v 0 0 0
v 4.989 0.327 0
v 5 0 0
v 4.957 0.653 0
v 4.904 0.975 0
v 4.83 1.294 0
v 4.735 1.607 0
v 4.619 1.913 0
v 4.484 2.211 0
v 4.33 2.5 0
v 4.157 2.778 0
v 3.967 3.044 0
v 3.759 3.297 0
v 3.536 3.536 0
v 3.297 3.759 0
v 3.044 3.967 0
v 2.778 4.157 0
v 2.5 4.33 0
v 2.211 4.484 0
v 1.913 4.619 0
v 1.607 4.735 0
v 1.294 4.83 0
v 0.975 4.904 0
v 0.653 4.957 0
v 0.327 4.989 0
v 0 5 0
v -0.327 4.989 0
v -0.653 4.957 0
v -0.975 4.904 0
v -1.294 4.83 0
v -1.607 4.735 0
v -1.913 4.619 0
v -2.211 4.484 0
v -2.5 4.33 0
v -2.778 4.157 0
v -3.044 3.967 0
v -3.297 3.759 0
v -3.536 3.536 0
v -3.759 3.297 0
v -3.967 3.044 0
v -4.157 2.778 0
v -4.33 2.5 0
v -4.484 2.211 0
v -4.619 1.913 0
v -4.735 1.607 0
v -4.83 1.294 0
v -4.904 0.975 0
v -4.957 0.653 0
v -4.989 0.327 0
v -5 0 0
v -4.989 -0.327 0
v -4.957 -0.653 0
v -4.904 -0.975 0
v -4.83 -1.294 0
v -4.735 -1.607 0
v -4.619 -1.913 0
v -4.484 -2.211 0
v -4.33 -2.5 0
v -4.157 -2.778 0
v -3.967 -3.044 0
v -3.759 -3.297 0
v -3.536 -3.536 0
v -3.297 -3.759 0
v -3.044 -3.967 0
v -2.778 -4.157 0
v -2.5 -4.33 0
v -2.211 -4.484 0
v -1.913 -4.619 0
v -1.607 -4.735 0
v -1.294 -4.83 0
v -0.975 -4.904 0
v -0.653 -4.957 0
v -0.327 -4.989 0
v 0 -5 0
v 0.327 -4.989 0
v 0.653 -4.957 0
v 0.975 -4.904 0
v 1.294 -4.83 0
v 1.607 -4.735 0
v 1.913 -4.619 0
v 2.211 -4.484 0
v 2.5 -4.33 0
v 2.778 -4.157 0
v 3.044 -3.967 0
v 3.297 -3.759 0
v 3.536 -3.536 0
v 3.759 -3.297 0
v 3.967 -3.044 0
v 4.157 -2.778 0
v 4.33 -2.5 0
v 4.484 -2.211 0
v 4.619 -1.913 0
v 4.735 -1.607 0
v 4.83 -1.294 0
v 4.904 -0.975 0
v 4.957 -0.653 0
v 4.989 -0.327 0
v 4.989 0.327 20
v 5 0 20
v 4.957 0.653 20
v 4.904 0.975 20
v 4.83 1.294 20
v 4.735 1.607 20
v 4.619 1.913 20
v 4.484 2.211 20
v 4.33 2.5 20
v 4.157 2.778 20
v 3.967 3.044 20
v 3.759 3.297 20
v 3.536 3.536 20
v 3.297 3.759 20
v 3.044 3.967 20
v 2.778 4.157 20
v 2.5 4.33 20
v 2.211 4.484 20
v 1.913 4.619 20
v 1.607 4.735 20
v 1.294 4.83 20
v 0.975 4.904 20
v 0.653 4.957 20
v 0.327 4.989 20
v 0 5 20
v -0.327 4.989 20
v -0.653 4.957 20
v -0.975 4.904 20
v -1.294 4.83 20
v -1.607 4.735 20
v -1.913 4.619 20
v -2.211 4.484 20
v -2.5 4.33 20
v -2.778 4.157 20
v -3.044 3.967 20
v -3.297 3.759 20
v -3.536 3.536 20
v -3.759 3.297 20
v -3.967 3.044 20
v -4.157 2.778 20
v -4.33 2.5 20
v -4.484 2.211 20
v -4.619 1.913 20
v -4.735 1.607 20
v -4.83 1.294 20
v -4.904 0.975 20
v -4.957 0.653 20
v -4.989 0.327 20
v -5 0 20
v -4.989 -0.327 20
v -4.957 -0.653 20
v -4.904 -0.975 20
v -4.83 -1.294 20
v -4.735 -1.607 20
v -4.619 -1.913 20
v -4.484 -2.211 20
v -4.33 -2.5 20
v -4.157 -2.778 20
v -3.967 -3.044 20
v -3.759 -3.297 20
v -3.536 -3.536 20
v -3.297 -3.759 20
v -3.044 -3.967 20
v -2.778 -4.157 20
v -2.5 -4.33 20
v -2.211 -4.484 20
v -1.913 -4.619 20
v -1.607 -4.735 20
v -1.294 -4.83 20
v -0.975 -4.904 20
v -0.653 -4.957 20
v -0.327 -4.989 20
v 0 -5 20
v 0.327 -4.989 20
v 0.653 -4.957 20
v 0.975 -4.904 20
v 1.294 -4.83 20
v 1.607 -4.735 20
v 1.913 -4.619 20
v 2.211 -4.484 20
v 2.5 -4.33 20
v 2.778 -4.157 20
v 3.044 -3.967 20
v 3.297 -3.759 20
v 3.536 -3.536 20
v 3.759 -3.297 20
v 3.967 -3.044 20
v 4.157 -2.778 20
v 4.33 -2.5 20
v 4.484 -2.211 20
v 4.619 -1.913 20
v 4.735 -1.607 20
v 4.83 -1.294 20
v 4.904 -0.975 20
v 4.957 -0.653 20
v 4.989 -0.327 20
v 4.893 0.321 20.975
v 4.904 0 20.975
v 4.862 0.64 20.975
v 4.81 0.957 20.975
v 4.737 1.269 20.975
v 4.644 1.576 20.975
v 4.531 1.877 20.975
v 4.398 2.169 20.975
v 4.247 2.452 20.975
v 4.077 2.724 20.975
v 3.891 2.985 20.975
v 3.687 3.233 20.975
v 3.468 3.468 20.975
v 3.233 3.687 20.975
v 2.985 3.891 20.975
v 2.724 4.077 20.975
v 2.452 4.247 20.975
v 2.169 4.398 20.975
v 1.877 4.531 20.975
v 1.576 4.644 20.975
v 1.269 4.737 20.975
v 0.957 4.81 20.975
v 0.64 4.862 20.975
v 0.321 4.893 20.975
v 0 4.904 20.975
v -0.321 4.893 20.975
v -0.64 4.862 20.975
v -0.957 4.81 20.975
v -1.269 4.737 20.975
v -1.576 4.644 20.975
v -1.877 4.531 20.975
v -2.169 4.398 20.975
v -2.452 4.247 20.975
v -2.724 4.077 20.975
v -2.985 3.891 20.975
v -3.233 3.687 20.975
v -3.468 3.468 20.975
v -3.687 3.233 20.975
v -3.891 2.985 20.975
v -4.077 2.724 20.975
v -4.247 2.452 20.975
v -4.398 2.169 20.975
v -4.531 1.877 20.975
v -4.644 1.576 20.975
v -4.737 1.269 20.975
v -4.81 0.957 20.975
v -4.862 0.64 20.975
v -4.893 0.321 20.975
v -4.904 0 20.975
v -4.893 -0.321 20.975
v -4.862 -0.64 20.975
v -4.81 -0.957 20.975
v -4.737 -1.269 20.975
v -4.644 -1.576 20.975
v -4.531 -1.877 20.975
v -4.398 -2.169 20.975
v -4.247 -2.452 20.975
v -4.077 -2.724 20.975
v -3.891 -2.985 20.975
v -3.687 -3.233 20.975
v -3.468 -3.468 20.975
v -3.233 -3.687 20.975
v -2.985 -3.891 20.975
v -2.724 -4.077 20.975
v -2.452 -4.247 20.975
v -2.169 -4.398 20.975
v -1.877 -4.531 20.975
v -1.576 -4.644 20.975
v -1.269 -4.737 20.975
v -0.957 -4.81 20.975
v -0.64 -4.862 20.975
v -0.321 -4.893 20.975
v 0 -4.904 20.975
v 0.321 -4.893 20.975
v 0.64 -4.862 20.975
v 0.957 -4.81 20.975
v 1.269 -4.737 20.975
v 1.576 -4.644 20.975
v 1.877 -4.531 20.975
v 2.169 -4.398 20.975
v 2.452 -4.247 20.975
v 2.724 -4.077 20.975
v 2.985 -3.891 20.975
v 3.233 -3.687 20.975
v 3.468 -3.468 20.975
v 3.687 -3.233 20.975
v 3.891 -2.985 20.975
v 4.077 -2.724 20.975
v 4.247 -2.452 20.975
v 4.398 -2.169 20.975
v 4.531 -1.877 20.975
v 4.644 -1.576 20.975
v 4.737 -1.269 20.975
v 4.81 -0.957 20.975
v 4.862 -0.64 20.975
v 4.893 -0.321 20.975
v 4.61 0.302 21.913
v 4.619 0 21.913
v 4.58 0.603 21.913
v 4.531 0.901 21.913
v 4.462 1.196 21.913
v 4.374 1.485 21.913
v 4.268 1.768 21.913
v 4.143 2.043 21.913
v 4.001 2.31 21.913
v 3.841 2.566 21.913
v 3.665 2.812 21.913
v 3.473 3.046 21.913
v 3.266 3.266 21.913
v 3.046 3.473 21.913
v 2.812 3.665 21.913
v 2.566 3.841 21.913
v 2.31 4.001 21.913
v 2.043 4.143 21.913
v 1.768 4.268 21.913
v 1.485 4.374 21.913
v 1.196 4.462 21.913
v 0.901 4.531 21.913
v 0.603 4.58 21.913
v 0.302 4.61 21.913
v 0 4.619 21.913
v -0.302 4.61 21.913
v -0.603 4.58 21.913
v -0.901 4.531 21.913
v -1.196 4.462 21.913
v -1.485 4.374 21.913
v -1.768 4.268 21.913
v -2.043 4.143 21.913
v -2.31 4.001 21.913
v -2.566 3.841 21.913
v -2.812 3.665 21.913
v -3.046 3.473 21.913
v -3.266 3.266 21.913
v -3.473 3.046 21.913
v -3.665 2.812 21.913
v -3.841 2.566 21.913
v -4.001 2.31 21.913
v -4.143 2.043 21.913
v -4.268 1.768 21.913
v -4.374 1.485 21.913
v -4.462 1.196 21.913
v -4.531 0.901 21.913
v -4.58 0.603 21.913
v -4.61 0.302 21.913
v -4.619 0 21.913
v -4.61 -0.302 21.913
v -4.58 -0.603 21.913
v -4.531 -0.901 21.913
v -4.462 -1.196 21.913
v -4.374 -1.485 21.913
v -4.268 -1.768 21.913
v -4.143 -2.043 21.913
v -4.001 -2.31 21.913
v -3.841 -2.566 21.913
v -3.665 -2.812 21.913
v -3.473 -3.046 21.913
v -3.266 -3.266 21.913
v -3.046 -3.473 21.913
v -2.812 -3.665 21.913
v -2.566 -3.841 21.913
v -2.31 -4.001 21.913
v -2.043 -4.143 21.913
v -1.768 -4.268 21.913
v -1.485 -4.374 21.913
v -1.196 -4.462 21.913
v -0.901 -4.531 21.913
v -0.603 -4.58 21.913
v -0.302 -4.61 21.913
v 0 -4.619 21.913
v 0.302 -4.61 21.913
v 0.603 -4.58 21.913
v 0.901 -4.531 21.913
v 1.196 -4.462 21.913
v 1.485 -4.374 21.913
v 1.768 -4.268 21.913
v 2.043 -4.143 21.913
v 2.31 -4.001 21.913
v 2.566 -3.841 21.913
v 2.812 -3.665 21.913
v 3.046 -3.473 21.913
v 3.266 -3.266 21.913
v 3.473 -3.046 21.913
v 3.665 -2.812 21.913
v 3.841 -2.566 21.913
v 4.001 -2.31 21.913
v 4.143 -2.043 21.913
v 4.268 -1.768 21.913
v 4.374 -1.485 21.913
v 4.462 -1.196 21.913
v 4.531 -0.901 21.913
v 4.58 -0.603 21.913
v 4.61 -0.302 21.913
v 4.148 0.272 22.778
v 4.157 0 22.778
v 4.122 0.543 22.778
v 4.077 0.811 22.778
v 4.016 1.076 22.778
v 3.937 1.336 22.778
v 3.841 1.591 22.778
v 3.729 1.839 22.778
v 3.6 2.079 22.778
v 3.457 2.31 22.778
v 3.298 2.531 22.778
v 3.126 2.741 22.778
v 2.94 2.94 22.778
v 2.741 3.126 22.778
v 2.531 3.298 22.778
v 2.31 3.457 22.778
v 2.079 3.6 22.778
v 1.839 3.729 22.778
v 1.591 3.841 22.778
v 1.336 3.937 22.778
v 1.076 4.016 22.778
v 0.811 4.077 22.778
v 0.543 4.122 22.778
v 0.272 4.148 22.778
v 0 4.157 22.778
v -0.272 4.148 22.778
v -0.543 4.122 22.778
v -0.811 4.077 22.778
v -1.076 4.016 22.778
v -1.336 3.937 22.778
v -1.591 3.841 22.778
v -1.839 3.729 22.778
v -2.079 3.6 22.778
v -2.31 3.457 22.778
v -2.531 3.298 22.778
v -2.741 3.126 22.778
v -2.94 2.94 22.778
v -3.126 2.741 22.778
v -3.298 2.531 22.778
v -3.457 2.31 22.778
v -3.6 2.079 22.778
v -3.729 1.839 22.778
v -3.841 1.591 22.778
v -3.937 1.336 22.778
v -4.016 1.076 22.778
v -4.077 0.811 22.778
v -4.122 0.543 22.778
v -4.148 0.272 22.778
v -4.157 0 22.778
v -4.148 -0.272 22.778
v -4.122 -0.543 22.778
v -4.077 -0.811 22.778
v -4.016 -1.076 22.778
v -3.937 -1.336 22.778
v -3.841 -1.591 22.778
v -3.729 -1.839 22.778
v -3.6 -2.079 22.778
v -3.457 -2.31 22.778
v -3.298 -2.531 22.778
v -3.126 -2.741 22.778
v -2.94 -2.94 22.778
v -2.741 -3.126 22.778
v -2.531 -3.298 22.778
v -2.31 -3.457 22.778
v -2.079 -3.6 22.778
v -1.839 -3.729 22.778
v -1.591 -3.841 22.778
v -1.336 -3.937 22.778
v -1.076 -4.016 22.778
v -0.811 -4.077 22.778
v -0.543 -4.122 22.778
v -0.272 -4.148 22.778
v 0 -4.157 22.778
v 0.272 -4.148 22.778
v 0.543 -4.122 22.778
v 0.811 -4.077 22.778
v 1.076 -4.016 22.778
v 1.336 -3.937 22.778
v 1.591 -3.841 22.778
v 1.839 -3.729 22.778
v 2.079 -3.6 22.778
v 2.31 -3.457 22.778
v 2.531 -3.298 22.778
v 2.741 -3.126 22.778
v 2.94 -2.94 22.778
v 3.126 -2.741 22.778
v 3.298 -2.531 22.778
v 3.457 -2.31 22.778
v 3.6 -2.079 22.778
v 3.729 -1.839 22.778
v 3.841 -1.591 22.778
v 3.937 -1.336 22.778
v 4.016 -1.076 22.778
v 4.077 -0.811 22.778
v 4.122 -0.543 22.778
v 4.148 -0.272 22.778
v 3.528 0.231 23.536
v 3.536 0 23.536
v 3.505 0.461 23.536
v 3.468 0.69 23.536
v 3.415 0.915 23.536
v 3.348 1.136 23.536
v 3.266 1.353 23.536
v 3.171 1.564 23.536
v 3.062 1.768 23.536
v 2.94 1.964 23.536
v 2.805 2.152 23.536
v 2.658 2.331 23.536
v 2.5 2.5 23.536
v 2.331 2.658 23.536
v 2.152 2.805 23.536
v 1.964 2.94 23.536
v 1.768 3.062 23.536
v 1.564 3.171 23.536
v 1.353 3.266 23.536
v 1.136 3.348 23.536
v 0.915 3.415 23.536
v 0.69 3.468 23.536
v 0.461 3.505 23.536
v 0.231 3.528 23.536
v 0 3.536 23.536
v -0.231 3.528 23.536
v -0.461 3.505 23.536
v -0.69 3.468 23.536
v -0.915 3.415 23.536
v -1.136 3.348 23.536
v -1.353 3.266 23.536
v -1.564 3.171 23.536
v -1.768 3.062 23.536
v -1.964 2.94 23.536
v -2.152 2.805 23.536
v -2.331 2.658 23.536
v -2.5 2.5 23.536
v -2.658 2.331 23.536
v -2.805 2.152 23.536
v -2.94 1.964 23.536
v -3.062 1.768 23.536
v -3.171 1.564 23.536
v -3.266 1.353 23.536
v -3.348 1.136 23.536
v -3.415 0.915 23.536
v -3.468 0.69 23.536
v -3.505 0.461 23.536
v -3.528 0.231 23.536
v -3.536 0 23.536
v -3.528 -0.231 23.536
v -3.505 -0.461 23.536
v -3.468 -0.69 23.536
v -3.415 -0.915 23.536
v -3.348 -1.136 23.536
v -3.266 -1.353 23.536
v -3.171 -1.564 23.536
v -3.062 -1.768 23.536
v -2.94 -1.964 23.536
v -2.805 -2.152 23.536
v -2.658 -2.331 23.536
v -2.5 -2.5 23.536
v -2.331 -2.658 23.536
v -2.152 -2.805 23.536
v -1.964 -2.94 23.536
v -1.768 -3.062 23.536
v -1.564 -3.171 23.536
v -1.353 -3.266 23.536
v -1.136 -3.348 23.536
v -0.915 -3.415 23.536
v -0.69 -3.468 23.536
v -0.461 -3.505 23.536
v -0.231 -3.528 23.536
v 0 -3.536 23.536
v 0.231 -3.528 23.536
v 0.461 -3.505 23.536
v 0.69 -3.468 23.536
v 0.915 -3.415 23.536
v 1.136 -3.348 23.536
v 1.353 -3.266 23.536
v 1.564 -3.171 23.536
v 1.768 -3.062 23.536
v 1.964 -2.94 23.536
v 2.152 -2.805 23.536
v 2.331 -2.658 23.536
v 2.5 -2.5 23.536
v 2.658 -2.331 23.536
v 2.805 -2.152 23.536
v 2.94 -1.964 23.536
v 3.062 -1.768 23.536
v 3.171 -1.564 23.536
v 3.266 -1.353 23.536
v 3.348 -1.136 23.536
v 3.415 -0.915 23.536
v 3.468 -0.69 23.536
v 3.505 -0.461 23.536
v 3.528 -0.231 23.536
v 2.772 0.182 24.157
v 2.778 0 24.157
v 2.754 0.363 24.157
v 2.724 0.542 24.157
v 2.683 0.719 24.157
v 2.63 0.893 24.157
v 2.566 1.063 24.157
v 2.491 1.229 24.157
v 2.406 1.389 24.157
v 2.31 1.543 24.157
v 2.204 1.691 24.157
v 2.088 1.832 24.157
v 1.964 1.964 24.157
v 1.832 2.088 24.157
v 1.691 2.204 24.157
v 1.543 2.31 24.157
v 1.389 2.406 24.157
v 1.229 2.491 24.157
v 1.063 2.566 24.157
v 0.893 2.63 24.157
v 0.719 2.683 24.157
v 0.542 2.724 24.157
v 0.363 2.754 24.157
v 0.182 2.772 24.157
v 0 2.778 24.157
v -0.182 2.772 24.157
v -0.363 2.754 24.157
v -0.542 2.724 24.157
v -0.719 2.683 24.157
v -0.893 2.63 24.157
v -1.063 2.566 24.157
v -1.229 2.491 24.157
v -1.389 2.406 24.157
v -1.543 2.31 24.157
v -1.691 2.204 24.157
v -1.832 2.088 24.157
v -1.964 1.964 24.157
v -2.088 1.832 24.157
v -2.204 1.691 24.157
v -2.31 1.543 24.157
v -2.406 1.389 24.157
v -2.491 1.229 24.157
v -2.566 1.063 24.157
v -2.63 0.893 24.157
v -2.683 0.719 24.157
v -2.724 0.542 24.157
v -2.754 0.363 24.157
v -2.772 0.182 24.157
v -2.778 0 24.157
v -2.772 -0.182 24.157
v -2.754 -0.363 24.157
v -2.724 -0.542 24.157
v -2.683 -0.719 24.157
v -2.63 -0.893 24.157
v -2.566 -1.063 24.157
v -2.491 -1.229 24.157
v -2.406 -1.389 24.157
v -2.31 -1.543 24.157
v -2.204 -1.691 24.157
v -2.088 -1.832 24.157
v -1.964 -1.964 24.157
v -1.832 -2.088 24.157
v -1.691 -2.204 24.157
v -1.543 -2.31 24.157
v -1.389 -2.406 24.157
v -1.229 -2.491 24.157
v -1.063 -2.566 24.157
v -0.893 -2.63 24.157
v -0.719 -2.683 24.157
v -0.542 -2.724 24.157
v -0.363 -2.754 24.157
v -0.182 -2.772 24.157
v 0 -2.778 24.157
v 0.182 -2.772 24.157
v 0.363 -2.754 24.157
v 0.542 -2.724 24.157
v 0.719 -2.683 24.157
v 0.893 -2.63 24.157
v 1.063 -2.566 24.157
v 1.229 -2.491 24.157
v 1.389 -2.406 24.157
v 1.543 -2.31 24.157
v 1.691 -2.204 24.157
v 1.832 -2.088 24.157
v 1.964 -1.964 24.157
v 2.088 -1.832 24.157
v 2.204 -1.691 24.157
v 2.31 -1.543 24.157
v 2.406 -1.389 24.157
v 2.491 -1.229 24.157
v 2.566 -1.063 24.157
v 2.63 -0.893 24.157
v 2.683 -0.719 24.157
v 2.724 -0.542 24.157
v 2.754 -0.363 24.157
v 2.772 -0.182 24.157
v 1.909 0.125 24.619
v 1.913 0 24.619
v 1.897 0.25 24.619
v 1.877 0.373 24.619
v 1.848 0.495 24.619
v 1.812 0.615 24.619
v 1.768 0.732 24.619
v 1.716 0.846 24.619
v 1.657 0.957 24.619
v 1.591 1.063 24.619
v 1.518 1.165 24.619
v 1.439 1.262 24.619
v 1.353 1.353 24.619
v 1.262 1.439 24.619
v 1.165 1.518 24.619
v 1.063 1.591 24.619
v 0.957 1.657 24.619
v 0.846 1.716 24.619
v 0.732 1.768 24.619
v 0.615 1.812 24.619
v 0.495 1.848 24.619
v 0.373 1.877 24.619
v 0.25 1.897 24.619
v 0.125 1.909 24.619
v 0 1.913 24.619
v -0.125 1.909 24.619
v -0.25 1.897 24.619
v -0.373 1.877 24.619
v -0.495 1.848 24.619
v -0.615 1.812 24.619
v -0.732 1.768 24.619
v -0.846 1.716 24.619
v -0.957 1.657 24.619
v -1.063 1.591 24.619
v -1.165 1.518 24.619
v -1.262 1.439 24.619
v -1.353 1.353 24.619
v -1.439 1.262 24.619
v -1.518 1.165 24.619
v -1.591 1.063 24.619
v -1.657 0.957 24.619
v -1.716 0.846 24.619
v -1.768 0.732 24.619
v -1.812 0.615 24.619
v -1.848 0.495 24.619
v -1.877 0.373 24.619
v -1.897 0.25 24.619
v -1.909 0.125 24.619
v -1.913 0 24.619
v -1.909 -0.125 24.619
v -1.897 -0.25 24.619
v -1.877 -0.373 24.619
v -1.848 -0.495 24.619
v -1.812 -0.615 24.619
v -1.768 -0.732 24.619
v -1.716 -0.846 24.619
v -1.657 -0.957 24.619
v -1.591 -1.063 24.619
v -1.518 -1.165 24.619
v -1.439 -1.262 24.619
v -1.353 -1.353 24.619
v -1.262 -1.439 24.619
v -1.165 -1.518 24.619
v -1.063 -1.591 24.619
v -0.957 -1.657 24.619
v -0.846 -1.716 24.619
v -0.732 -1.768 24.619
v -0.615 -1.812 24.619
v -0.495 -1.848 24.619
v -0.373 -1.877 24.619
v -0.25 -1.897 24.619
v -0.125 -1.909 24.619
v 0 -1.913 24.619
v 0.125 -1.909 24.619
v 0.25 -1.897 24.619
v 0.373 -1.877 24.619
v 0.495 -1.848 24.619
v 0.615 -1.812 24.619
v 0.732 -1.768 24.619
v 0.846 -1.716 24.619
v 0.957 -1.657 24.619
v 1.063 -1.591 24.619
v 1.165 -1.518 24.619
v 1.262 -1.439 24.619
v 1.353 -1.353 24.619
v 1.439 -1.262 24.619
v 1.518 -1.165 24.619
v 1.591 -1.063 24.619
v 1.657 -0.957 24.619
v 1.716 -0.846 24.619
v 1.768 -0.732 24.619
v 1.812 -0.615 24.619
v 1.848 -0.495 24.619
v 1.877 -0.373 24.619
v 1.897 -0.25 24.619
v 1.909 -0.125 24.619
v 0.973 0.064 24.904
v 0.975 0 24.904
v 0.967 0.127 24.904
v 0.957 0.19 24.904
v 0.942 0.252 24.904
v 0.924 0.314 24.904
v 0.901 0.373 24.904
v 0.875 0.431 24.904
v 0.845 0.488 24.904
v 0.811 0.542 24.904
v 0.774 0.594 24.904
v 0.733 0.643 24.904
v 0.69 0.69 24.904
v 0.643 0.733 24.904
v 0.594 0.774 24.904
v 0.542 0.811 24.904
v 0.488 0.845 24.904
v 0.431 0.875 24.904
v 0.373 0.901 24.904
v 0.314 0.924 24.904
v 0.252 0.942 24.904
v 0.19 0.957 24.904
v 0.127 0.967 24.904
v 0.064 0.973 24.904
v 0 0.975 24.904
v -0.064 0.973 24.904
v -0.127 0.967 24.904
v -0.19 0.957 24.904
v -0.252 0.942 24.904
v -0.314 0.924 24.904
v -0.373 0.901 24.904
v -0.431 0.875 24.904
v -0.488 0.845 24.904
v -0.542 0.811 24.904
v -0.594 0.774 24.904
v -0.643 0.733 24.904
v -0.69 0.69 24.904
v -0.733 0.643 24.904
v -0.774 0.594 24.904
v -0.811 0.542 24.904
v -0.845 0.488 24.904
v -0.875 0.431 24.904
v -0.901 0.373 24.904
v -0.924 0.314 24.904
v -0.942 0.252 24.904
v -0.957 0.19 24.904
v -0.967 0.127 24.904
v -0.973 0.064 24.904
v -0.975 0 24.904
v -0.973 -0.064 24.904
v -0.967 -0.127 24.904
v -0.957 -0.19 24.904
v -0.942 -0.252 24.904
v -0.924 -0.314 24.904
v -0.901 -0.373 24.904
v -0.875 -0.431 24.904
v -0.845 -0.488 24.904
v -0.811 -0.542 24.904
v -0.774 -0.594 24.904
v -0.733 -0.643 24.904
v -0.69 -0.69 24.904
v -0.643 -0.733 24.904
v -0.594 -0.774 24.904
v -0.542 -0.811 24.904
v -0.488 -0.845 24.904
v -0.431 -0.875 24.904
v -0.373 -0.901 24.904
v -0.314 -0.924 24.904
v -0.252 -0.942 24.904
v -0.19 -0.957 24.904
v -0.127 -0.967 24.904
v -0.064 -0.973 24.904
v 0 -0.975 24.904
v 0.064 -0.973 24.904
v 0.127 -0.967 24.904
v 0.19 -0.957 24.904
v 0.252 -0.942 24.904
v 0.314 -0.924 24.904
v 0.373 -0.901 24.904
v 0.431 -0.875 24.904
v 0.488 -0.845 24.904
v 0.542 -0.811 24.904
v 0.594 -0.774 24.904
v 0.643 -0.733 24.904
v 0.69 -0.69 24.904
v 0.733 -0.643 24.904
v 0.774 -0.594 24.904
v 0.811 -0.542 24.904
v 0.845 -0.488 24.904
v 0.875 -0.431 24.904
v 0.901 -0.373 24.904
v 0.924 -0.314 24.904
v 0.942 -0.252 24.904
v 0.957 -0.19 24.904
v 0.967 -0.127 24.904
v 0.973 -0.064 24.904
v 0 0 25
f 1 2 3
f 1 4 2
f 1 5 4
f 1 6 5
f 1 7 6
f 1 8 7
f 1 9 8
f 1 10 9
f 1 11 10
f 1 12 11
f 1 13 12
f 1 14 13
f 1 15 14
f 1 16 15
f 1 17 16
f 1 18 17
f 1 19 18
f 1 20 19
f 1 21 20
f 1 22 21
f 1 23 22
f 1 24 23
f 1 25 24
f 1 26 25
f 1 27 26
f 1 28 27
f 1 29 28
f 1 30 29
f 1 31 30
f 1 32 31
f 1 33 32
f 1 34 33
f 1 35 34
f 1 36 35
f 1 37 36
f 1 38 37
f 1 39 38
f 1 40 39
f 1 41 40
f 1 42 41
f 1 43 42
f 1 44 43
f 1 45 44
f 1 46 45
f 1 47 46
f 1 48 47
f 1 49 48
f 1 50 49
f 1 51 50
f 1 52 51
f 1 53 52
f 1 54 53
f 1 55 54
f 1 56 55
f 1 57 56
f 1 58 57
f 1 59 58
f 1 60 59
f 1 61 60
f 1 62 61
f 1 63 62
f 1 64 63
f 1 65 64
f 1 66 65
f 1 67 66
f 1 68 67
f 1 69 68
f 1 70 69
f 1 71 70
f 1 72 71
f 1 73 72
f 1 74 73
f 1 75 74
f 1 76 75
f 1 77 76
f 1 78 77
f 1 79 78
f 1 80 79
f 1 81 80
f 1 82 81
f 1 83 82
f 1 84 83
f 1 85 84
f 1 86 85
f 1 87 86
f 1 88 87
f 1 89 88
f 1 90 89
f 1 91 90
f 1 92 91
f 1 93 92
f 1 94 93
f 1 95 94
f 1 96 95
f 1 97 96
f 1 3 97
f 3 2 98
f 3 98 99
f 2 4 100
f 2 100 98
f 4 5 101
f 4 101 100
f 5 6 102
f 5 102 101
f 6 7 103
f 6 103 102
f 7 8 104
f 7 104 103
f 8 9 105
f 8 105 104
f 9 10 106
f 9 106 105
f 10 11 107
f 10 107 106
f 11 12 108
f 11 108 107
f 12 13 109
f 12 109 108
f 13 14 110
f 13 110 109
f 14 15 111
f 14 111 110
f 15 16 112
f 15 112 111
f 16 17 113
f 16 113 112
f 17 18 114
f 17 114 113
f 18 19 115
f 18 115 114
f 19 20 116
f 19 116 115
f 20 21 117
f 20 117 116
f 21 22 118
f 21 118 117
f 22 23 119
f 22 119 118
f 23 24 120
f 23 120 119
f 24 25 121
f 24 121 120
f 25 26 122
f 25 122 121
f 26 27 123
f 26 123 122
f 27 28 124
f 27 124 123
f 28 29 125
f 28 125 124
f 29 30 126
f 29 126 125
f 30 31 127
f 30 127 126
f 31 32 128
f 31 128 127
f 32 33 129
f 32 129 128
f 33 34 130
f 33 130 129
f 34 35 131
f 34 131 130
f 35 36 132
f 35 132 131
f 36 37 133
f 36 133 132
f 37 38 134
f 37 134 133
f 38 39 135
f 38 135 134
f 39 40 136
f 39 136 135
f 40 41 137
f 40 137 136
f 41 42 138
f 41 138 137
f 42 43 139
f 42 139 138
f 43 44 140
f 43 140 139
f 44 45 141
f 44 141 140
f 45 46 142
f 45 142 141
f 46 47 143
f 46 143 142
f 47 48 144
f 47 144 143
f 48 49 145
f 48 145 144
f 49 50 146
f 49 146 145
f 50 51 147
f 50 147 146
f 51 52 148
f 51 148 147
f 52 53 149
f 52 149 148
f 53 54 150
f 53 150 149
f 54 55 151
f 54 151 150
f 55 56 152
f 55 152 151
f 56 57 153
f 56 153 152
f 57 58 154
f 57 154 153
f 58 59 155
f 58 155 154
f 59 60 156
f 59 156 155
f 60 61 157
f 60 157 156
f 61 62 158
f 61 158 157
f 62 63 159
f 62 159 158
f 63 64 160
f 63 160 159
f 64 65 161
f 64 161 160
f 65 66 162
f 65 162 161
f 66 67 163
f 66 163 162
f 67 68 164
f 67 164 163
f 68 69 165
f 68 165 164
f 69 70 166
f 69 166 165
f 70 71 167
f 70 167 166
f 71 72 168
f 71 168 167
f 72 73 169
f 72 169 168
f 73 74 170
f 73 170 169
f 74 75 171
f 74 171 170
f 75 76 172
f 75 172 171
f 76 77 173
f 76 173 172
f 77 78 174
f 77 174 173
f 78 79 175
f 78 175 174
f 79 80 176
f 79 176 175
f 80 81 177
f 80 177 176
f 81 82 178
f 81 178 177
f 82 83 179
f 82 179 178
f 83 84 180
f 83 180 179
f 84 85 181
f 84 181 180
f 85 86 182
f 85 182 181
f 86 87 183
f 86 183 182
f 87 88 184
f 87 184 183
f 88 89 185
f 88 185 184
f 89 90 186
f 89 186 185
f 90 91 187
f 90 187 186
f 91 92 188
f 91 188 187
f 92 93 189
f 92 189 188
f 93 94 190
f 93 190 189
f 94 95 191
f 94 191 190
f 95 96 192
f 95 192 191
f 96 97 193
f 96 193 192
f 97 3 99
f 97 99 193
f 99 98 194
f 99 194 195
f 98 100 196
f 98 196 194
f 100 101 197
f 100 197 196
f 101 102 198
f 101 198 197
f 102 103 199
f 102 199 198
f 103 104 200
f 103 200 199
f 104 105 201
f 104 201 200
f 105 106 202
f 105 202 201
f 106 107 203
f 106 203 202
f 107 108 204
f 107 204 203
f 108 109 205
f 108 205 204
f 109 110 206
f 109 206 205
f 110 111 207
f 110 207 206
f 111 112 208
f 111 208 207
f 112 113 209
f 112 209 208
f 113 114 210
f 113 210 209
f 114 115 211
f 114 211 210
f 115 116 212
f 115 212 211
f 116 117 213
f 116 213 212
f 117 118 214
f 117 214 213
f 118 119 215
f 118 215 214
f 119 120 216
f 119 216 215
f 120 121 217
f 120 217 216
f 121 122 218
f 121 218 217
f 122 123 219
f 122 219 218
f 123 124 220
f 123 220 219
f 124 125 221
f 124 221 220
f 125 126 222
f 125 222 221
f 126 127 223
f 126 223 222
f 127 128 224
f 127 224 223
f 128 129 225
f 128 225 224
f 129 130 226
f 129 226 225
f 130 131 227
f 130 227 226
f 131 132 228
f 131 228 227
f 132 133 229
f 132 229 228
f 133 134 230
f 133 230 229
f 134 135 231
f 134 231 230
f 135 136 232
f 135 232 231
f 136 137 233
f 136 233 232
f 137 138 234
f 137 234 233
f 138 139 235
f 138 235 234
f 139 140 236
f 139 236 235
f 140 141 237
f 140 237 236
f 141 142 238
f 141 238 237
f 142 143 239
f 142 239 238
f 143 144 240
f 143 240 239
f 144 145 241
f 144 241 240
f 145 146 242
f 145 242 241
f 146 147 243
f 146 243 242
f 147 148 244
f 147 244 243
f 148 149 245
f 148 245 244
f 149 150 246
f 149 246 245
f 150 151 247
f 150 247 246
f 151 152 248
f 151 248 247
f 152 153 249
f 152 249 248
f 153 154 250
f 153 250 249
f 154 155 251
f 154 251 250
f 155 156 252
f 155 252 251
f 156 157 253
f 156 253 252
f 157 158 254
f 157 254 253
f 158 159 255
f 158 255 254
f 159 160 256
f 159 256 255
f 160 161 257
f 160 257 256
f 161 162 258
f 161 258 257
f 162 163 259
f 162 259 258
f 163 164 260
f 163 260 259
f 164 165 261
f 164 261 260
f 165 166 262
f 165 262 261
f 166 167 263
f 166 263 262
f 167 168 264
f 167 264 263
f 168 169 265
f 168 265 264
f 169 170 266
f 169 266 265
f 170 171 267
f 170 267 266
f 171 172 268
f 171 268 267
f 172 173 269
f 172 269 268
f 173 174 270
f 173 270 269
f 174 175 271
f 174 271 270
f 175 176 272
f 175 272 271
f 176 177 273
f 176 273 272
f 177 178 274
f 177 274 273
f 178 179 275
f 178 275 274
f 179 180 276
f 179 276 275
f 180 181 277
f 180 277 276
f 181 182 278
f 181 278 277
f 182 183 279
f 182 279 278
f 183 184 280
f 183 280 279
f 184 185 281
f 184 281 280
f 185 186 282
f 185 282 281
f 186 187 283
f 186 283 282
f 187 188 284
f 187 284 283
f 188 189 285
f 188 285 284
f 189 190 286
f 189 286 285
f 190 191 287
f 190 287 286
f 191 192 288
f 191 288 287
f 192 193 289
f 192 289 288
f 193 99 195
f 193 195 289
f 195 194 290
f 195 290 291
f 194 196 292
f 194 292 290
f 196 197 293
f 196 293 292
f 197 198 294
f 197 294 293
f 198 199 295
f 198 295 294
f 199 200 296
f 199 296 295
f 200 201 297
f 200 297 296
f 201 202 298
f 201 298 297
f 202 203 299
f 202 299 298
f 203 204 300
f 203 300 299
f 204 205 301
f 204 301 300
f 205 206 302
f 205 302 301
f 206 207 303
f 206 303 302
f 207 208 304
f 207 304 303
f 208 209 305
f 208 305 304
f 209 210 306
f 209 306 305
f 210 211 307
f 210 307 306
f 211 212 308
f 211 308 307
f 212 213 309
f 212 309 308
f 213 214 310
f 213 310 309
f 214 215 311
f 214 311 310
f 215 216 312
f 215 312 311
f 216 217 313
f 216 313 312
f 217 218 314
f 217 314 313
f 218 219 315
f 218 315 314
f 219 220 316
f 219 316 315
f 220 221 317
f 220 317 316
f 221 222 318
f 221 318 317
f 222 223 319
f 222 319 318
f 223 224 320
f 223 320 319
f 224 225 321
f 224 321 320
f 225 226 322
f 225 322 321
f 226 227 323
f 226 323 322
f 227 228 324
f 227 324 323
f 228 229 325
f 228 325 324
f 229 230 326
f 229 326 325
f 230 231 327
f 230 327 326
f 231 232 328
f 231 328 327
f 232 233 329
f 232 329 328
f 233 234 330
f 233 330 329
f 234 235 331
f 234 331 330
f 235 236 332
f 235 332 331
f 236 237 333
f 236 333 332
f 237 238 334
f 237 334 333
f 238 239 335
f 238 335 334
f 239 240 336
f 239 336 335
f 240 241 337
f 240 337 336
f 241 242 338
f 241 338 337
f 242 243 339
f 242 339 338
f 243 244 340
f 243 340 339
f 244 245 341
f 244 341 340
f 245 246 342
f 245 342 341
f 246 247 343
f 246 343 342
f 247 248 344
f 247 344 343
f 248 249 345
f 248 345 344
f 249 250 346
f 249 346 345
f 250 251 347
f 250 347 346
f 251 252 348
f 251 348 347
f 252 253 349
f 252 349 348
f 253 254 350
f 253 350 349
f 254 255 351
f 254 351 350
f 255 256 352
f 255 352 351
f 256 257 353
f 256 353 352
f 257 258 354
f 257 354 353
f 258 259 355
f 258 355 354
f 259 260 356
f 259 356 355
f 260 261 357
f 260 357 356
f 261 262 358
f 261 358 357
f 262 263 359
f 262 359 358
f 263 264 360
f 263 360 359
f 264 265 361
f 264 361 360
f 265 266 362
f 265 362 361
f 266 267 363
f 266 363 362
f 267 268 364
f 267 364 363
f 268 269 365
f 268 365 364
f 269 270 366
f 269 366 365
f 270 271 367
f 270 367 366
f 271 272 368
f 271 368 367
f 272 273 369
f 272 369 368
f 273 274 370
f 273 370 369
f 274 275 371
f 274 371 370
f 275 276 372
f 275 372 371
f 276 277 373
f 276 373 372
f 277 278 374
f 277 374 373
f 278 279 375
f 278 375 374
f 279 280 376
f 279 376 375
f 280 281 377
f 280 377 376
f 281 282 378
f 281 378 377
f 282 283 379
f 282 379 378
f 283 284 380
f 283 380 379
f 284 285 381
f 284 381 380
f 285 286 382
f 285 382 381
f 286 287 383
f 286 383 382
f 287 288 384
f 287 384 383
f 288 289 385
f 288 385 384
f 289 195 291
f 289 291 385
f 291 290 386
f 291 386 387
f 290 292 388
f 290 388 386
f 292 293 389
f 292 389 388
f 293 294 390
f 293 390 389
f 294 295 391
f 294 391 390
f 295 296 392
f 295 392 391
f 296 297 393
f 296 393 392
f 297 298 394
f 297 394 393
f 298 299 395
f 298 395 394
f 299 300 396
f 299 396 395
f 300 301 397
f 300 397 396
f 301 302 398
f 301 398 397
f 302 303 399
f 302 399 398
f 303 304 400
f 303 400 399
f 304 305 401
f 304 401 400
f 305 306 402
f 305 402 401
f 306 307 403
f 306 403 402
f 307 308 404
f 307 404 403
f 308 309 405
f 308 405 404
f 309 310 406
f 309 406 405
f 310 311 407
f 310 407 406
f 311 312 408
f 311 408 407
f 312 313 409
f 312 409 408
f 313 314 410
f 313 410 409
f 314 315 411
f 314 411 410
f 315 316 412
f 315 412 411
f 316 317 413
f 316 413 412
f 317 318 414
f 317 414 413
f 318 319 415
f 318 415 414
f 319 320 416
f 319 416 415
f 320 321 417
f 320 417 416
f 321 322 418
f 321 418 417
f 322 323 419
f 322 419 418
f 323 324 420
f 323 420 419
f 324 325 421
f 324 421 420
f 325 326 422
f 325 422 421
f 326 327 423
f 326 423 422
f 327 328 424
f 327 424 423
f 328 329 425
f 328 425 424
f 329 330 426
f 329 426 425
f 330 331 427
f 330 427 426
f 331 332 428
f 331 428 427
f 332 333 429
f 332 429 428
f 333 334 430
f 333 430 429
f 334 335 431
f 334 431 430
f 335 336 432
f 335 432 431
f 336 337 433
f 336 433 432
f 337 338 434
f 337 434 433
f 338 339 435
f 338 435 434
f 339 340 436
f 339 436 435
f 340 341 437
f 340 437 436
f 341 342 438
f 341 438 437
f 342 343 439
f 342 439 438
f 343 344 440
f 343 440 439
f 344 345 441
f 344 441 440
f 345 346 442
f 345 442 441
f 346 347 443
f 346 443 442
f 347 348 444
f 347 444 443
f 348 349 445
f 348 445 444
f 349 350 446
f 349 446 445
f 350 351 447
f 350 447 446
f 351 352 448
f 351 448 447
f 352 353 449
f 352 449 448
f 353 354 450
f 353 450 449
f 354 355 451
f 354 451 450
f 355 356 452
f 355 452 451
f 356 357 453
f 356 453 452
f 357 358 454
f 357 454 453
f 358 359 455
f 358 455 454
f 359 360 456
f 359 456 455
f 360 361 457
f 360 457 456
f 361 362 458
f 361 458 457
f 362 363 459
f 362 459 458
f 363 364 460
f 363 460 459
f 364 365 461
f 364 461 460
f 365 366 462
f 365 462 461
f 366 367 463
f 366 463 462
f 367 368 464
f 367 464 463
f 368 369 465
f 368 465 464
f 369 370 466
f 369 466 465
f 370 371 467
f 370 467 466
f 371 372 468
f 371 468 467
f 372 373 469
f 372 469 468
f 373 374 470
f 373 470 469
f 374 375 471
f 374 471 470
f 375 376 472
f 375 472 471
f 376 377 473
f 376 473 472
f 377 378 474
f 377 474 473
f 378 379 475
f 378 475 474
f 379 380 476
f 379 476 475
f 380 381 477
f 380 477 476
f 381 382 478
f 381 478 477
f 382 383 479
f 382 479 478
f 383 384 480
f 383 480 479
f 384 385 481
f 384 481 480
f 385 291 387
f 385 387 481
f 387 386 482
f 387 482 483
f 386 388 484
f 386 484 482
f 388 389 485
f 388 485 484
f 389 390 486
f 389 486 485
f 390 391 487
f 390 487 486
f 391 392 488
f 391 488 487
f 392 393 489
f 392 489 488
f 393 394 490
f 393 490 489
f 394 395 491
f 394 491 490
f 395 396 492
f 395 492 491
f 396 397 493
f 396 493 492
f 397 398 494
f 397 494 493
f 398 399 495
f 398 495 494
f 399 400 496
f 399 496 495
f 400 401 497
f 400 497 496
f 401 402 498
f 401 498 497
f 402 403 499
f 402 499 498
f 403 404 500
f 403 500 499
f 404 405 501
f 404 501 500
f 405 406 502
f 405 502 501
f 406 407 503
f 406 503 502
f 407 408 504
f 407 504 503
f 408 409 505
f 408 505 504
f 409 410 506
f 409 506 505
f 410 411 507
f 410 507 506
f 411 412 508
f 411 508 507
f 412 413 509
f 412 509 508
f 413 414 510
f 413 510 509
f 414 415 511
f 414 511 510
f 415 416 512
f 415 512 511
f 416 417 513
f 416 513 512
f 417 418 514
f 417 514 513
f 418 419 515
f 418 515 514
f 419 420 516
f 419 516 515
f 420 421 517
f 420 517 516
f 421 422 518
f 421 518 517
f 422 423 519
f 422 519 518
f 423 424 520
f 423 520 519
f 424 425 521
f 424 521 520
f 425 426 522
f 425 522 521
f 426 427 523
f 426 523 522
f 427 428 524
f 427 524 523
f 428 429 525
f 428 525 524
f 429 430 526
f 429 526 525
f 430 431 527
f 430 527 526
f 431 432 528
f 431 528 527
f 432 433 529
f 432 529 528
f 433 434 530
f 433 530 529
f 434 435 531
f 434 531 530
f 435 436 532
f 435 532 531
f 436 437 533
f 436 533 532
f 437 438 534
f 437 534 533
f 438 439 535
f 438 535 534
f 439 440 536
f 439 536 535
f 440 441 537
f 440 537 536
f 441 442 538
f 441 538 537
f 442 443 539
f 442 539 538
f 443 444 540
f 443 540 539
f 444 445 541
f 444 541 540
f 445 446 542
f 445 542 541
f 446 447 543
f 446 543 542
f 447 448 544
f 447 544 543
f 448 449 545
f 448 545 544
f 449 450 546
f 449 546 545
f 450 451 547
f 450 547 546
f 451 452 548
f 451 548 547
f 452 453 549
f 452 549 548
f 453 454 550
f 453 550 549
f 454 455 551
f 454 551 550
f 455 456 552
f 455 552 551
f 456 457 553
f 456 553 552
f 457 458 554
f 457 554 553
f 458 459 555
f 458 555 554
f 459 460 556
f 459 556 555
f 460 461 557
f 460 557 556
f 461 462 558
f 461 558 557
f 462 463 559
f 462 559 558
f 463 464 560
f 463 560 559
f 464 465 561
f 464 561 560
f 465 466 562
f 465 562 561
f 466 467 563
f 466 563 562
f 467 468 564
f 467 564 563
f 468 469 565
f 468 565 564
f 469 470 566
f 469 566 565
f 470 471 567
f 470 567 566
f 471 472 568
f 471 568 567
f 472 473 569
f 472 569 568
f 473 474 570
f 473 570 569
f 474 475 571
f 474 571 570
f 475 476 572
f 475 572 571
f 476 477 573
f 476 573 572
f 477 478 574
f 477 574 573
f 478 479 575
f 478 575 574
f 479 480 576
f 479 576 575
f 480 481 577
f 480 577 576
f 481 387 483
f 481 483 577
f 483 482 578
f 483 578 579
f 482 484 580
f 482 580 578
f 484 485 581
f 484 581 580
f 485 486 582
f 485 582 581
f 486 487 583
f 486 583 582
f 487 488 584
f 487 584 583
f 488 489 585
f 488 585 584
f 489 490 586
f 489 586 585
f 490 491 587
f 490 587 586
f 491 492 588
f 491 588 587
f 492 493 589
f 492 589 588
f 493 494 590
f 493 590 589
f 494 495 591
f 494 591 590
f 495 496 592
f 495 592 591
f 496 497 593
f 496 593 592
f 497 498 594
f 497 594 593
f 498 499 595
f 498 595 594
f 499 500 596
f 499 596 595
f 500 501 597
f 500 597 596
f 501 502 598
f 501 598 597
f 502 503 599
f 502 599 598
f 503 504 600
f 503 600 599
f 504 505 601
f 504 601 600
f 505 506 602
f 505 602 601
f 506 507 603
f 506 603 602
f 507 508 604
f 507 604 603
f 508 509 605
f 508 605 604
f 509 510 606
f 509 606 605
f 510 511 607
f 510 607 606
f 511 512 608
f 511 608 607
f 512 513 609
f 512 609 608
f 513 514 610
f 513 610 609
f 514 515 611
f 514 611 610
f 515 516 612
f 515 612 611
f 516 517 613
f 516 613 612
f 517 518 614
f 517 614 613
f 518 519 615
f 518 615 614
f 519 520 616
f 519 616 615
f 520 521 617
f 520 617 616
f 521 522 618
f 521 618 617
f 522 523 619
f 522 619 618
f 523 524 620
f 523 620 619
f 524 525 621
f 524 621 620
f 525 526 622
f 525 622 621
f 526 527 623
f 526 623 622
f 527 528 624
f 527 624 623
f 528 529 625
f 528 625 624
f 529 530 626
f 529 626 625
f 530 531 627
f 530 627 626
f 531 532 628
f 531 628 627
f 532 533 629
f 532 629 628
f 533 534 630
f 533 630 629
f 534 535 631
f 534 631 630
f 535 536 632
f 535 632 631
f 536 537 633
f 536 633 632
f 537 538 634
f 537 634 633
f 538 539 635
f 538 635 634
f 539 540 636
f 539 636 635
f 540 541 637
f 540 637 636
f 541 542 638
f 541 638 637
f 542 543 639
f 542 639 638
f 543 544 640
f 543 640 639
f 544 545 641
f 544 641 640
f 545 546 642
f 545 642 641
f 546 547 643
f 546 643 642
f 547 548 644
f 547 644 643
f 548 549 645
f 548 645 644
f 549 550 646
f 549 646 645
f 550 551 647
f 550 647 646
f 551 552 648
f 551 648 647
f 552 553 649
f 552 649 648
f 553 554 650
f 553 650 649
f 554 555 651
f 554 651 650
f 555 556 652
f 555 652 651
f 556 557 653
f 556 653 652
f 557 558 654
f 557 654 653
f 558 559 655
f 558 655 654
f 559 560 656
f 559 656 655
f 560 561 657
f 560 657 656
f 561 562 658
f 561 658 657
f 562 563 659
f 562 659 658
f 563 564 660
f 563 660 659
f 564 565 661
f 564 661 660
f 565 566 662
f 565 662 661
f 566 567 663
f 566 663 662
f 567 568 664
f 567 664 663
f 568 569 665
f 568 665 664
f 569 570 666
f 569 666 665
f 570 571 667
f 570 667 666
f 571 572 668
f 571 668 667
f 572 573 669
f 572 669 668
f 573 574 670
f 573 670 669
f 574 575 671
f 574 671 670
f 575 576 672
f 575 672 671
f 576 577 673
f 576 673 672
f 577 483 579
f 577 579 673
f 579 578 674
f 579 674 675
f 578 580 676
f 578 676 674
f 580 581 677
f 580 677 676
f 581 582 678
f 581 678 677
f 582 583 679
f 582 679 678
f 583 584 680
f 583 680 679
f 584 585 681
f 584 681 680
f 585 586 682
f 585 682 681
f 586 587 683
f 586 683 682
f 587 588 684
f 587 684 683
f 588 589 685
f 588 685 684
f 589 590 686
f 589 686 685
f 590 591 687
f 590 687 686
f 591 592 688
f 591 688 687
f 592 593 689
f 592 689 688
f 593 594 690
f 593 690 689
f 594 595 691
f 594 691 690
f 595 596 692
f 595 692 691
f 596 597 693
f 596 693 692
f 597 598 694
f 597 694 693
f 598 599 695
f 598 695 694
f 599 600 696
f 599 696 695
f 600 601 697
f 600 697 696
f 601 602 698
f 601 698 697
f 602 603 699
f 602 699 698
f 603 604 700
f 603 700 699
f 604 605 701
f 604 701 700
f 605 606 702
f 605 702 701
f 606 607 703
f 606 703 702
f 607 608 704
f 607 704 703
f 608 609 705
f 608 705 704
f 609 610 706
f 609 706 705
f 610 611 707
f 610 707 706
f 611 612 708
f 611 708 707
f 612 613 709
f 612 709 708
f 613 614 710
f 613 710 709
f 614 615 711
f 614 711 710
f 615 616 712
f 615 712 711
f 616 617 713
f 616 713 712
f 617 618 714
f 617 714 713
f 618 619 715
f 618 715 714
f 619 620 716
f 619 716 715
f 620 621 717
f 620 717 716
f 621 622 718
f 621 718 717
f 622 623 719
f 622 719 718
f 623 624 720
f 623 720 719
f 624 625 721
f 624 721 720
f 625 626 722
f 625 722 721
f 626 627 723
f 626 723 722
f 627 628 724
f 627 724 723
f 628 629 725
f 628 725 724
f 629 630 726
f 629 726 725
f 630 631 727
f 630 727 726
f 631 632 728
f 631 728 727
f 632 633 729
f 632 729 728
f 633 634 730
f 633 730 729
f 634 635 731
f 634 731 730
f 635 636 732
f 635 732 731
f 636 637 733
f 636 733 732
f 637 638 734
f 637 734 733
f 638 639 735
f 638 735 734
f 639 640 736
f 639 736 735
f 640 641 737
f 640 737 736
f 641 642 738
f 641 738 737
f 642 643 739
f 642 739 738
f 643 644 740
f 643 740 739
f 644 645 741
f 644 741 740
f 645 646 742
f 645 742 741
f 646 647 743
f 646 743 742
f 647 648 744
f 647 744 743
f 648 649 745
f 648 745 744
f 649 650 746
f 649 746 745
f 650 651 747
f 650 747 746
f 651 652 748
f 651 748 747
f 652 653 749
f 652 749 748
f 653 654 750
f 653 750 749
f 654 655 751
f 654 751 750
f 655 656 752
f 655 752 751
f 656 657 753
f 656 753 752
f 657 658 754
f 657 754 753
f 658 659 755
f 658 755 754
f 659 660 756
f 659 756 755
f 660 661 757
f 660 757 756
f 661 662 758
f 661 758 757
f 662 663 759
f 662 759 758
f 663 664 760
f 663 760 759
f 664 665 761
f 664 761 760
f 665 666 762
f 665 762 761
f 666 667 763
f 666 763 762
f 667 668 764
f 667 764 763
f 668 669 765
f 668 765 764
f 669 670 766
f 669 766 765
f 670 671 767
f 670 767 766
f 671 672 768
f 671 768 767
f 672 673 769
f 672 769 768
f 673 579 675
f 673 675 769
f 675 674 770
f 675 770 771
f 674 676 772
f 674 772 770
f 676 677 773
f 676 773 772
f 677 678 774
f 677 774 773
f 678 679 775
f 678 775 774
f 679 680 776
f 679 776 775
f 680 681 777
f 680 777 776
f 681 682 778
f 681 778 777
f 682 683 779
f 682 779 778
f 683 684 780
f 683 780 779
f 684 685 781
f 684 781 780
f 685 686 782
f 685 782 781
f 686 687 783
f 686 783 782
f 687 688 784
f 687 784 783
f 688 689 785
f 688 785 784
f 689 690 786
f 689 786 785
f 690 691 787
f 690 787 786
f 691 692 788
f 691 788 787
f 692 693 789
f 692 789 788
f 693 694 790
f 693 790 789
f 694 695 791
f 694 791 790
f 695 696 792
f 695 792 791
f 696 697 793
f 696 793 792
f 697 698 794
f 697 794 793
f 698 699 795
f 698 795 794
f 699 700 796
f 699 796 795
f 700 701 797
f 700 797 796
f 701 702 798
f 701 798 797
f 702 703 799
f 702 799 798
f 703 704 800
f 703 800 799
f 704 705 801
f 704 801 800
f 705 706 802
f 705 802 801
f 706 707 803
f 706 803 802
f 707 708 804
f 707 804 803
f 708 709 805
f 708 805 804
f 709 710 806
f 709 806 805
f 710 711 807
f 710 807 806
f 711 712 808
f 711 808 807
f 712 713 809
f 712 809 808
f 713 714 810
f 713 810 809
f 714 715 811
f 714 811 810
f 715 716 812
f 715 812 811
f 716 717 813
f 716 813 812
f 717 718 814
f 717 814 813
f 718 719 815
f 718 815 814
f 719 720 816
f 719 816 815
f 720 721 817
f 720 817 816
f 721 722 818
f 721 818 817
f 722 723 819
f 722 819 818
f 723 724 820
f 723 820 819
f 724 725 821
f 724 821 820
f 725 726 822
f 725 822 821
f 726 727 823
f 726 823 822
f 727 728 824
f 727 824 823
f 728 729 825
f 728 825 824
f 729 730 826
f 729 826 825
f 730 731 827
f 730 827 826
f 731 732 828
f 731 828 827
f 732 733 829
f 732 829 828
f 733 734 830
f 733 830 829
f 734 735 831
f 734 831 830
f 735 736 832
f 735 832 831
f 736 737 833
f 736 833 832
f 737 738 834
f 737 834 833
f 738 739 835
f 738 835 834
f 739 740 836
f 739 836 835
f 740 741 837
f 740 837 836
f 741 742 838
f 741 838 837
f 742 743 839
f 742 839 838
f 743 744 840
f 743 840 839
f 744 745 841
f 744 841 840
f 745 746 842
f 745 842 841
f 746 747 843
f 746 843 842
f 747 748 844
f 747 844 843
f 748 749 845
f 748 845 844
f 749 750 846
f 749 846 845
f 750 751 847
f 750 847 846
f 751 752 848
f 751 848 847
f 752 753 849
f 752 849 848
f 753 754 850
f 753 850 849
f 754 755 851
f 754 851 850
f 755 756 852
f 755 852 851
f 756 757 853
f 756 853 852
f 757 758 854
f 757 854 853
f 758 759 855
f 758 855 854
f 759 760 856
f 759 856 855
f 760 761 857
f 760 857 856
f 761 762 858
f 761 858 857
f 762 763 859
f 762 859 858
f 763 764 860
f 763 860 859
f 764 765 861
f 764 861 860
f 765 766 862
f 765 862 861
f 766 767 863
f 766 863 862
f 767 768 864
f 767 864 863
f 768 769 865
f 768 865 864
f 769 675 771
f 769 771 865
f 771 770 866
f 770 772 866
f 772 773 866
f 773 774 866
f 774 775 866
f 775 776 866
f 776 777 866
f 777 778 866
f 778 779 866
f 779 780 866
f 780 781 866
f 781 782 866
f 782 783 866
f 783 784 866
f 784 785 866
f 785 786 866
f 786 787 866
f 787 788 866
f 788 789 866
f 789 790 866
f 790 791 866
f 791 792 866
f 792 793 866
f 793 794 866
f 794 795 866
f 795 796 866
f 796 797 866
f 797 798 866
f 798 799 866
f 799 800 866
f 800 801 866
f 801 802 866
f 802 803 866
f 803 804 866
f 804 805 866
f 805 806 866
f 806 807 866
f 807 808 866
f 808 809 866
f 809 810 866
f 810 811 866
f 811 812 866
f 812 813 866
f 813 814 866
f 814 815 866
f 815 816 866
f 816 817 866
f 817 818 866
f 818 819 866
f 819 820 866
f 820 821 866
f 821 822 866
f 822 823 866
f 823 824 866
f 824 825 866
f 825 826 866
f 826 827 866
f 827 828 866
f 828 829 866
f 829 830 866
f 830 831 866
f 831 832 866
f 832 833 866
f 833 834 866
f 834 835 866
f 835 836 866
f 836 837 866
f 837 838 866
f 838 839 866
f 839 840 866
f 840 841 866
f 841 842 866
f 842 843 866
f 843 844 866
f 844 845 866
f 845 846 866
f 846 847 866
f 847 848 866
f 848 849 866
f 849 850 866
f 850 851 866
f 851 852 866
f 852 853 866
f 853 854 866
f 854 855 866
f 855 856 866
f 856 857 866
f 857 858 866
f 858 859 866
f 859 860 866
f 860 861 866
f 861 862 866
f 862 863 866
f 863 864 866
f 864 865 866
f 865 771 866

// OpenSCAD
// Original MechIntel educational model. CC0-1.0. Units: mm.
// Not a standardized or load-rated component.
$fn=96;
// Section points: [radius, height], mm. Edit to change the profile.
section=[[0, 0], [5, 0], [5, 20], [4.903926402016152, 20.97545161008064], [4.619397662556434, 21.91341716182545], [4.157348061512726, 22.77785116509801], [3.5355339059327378, 23.535533905932738], [2.7778511650980113, 24.157348061512728], [1.9134171618254492, 24.619397662556434], [0.9754516100806416, 24.903926402016154], [0, 25]];
rotate_extrude($fn=96) polygon(points=section);
